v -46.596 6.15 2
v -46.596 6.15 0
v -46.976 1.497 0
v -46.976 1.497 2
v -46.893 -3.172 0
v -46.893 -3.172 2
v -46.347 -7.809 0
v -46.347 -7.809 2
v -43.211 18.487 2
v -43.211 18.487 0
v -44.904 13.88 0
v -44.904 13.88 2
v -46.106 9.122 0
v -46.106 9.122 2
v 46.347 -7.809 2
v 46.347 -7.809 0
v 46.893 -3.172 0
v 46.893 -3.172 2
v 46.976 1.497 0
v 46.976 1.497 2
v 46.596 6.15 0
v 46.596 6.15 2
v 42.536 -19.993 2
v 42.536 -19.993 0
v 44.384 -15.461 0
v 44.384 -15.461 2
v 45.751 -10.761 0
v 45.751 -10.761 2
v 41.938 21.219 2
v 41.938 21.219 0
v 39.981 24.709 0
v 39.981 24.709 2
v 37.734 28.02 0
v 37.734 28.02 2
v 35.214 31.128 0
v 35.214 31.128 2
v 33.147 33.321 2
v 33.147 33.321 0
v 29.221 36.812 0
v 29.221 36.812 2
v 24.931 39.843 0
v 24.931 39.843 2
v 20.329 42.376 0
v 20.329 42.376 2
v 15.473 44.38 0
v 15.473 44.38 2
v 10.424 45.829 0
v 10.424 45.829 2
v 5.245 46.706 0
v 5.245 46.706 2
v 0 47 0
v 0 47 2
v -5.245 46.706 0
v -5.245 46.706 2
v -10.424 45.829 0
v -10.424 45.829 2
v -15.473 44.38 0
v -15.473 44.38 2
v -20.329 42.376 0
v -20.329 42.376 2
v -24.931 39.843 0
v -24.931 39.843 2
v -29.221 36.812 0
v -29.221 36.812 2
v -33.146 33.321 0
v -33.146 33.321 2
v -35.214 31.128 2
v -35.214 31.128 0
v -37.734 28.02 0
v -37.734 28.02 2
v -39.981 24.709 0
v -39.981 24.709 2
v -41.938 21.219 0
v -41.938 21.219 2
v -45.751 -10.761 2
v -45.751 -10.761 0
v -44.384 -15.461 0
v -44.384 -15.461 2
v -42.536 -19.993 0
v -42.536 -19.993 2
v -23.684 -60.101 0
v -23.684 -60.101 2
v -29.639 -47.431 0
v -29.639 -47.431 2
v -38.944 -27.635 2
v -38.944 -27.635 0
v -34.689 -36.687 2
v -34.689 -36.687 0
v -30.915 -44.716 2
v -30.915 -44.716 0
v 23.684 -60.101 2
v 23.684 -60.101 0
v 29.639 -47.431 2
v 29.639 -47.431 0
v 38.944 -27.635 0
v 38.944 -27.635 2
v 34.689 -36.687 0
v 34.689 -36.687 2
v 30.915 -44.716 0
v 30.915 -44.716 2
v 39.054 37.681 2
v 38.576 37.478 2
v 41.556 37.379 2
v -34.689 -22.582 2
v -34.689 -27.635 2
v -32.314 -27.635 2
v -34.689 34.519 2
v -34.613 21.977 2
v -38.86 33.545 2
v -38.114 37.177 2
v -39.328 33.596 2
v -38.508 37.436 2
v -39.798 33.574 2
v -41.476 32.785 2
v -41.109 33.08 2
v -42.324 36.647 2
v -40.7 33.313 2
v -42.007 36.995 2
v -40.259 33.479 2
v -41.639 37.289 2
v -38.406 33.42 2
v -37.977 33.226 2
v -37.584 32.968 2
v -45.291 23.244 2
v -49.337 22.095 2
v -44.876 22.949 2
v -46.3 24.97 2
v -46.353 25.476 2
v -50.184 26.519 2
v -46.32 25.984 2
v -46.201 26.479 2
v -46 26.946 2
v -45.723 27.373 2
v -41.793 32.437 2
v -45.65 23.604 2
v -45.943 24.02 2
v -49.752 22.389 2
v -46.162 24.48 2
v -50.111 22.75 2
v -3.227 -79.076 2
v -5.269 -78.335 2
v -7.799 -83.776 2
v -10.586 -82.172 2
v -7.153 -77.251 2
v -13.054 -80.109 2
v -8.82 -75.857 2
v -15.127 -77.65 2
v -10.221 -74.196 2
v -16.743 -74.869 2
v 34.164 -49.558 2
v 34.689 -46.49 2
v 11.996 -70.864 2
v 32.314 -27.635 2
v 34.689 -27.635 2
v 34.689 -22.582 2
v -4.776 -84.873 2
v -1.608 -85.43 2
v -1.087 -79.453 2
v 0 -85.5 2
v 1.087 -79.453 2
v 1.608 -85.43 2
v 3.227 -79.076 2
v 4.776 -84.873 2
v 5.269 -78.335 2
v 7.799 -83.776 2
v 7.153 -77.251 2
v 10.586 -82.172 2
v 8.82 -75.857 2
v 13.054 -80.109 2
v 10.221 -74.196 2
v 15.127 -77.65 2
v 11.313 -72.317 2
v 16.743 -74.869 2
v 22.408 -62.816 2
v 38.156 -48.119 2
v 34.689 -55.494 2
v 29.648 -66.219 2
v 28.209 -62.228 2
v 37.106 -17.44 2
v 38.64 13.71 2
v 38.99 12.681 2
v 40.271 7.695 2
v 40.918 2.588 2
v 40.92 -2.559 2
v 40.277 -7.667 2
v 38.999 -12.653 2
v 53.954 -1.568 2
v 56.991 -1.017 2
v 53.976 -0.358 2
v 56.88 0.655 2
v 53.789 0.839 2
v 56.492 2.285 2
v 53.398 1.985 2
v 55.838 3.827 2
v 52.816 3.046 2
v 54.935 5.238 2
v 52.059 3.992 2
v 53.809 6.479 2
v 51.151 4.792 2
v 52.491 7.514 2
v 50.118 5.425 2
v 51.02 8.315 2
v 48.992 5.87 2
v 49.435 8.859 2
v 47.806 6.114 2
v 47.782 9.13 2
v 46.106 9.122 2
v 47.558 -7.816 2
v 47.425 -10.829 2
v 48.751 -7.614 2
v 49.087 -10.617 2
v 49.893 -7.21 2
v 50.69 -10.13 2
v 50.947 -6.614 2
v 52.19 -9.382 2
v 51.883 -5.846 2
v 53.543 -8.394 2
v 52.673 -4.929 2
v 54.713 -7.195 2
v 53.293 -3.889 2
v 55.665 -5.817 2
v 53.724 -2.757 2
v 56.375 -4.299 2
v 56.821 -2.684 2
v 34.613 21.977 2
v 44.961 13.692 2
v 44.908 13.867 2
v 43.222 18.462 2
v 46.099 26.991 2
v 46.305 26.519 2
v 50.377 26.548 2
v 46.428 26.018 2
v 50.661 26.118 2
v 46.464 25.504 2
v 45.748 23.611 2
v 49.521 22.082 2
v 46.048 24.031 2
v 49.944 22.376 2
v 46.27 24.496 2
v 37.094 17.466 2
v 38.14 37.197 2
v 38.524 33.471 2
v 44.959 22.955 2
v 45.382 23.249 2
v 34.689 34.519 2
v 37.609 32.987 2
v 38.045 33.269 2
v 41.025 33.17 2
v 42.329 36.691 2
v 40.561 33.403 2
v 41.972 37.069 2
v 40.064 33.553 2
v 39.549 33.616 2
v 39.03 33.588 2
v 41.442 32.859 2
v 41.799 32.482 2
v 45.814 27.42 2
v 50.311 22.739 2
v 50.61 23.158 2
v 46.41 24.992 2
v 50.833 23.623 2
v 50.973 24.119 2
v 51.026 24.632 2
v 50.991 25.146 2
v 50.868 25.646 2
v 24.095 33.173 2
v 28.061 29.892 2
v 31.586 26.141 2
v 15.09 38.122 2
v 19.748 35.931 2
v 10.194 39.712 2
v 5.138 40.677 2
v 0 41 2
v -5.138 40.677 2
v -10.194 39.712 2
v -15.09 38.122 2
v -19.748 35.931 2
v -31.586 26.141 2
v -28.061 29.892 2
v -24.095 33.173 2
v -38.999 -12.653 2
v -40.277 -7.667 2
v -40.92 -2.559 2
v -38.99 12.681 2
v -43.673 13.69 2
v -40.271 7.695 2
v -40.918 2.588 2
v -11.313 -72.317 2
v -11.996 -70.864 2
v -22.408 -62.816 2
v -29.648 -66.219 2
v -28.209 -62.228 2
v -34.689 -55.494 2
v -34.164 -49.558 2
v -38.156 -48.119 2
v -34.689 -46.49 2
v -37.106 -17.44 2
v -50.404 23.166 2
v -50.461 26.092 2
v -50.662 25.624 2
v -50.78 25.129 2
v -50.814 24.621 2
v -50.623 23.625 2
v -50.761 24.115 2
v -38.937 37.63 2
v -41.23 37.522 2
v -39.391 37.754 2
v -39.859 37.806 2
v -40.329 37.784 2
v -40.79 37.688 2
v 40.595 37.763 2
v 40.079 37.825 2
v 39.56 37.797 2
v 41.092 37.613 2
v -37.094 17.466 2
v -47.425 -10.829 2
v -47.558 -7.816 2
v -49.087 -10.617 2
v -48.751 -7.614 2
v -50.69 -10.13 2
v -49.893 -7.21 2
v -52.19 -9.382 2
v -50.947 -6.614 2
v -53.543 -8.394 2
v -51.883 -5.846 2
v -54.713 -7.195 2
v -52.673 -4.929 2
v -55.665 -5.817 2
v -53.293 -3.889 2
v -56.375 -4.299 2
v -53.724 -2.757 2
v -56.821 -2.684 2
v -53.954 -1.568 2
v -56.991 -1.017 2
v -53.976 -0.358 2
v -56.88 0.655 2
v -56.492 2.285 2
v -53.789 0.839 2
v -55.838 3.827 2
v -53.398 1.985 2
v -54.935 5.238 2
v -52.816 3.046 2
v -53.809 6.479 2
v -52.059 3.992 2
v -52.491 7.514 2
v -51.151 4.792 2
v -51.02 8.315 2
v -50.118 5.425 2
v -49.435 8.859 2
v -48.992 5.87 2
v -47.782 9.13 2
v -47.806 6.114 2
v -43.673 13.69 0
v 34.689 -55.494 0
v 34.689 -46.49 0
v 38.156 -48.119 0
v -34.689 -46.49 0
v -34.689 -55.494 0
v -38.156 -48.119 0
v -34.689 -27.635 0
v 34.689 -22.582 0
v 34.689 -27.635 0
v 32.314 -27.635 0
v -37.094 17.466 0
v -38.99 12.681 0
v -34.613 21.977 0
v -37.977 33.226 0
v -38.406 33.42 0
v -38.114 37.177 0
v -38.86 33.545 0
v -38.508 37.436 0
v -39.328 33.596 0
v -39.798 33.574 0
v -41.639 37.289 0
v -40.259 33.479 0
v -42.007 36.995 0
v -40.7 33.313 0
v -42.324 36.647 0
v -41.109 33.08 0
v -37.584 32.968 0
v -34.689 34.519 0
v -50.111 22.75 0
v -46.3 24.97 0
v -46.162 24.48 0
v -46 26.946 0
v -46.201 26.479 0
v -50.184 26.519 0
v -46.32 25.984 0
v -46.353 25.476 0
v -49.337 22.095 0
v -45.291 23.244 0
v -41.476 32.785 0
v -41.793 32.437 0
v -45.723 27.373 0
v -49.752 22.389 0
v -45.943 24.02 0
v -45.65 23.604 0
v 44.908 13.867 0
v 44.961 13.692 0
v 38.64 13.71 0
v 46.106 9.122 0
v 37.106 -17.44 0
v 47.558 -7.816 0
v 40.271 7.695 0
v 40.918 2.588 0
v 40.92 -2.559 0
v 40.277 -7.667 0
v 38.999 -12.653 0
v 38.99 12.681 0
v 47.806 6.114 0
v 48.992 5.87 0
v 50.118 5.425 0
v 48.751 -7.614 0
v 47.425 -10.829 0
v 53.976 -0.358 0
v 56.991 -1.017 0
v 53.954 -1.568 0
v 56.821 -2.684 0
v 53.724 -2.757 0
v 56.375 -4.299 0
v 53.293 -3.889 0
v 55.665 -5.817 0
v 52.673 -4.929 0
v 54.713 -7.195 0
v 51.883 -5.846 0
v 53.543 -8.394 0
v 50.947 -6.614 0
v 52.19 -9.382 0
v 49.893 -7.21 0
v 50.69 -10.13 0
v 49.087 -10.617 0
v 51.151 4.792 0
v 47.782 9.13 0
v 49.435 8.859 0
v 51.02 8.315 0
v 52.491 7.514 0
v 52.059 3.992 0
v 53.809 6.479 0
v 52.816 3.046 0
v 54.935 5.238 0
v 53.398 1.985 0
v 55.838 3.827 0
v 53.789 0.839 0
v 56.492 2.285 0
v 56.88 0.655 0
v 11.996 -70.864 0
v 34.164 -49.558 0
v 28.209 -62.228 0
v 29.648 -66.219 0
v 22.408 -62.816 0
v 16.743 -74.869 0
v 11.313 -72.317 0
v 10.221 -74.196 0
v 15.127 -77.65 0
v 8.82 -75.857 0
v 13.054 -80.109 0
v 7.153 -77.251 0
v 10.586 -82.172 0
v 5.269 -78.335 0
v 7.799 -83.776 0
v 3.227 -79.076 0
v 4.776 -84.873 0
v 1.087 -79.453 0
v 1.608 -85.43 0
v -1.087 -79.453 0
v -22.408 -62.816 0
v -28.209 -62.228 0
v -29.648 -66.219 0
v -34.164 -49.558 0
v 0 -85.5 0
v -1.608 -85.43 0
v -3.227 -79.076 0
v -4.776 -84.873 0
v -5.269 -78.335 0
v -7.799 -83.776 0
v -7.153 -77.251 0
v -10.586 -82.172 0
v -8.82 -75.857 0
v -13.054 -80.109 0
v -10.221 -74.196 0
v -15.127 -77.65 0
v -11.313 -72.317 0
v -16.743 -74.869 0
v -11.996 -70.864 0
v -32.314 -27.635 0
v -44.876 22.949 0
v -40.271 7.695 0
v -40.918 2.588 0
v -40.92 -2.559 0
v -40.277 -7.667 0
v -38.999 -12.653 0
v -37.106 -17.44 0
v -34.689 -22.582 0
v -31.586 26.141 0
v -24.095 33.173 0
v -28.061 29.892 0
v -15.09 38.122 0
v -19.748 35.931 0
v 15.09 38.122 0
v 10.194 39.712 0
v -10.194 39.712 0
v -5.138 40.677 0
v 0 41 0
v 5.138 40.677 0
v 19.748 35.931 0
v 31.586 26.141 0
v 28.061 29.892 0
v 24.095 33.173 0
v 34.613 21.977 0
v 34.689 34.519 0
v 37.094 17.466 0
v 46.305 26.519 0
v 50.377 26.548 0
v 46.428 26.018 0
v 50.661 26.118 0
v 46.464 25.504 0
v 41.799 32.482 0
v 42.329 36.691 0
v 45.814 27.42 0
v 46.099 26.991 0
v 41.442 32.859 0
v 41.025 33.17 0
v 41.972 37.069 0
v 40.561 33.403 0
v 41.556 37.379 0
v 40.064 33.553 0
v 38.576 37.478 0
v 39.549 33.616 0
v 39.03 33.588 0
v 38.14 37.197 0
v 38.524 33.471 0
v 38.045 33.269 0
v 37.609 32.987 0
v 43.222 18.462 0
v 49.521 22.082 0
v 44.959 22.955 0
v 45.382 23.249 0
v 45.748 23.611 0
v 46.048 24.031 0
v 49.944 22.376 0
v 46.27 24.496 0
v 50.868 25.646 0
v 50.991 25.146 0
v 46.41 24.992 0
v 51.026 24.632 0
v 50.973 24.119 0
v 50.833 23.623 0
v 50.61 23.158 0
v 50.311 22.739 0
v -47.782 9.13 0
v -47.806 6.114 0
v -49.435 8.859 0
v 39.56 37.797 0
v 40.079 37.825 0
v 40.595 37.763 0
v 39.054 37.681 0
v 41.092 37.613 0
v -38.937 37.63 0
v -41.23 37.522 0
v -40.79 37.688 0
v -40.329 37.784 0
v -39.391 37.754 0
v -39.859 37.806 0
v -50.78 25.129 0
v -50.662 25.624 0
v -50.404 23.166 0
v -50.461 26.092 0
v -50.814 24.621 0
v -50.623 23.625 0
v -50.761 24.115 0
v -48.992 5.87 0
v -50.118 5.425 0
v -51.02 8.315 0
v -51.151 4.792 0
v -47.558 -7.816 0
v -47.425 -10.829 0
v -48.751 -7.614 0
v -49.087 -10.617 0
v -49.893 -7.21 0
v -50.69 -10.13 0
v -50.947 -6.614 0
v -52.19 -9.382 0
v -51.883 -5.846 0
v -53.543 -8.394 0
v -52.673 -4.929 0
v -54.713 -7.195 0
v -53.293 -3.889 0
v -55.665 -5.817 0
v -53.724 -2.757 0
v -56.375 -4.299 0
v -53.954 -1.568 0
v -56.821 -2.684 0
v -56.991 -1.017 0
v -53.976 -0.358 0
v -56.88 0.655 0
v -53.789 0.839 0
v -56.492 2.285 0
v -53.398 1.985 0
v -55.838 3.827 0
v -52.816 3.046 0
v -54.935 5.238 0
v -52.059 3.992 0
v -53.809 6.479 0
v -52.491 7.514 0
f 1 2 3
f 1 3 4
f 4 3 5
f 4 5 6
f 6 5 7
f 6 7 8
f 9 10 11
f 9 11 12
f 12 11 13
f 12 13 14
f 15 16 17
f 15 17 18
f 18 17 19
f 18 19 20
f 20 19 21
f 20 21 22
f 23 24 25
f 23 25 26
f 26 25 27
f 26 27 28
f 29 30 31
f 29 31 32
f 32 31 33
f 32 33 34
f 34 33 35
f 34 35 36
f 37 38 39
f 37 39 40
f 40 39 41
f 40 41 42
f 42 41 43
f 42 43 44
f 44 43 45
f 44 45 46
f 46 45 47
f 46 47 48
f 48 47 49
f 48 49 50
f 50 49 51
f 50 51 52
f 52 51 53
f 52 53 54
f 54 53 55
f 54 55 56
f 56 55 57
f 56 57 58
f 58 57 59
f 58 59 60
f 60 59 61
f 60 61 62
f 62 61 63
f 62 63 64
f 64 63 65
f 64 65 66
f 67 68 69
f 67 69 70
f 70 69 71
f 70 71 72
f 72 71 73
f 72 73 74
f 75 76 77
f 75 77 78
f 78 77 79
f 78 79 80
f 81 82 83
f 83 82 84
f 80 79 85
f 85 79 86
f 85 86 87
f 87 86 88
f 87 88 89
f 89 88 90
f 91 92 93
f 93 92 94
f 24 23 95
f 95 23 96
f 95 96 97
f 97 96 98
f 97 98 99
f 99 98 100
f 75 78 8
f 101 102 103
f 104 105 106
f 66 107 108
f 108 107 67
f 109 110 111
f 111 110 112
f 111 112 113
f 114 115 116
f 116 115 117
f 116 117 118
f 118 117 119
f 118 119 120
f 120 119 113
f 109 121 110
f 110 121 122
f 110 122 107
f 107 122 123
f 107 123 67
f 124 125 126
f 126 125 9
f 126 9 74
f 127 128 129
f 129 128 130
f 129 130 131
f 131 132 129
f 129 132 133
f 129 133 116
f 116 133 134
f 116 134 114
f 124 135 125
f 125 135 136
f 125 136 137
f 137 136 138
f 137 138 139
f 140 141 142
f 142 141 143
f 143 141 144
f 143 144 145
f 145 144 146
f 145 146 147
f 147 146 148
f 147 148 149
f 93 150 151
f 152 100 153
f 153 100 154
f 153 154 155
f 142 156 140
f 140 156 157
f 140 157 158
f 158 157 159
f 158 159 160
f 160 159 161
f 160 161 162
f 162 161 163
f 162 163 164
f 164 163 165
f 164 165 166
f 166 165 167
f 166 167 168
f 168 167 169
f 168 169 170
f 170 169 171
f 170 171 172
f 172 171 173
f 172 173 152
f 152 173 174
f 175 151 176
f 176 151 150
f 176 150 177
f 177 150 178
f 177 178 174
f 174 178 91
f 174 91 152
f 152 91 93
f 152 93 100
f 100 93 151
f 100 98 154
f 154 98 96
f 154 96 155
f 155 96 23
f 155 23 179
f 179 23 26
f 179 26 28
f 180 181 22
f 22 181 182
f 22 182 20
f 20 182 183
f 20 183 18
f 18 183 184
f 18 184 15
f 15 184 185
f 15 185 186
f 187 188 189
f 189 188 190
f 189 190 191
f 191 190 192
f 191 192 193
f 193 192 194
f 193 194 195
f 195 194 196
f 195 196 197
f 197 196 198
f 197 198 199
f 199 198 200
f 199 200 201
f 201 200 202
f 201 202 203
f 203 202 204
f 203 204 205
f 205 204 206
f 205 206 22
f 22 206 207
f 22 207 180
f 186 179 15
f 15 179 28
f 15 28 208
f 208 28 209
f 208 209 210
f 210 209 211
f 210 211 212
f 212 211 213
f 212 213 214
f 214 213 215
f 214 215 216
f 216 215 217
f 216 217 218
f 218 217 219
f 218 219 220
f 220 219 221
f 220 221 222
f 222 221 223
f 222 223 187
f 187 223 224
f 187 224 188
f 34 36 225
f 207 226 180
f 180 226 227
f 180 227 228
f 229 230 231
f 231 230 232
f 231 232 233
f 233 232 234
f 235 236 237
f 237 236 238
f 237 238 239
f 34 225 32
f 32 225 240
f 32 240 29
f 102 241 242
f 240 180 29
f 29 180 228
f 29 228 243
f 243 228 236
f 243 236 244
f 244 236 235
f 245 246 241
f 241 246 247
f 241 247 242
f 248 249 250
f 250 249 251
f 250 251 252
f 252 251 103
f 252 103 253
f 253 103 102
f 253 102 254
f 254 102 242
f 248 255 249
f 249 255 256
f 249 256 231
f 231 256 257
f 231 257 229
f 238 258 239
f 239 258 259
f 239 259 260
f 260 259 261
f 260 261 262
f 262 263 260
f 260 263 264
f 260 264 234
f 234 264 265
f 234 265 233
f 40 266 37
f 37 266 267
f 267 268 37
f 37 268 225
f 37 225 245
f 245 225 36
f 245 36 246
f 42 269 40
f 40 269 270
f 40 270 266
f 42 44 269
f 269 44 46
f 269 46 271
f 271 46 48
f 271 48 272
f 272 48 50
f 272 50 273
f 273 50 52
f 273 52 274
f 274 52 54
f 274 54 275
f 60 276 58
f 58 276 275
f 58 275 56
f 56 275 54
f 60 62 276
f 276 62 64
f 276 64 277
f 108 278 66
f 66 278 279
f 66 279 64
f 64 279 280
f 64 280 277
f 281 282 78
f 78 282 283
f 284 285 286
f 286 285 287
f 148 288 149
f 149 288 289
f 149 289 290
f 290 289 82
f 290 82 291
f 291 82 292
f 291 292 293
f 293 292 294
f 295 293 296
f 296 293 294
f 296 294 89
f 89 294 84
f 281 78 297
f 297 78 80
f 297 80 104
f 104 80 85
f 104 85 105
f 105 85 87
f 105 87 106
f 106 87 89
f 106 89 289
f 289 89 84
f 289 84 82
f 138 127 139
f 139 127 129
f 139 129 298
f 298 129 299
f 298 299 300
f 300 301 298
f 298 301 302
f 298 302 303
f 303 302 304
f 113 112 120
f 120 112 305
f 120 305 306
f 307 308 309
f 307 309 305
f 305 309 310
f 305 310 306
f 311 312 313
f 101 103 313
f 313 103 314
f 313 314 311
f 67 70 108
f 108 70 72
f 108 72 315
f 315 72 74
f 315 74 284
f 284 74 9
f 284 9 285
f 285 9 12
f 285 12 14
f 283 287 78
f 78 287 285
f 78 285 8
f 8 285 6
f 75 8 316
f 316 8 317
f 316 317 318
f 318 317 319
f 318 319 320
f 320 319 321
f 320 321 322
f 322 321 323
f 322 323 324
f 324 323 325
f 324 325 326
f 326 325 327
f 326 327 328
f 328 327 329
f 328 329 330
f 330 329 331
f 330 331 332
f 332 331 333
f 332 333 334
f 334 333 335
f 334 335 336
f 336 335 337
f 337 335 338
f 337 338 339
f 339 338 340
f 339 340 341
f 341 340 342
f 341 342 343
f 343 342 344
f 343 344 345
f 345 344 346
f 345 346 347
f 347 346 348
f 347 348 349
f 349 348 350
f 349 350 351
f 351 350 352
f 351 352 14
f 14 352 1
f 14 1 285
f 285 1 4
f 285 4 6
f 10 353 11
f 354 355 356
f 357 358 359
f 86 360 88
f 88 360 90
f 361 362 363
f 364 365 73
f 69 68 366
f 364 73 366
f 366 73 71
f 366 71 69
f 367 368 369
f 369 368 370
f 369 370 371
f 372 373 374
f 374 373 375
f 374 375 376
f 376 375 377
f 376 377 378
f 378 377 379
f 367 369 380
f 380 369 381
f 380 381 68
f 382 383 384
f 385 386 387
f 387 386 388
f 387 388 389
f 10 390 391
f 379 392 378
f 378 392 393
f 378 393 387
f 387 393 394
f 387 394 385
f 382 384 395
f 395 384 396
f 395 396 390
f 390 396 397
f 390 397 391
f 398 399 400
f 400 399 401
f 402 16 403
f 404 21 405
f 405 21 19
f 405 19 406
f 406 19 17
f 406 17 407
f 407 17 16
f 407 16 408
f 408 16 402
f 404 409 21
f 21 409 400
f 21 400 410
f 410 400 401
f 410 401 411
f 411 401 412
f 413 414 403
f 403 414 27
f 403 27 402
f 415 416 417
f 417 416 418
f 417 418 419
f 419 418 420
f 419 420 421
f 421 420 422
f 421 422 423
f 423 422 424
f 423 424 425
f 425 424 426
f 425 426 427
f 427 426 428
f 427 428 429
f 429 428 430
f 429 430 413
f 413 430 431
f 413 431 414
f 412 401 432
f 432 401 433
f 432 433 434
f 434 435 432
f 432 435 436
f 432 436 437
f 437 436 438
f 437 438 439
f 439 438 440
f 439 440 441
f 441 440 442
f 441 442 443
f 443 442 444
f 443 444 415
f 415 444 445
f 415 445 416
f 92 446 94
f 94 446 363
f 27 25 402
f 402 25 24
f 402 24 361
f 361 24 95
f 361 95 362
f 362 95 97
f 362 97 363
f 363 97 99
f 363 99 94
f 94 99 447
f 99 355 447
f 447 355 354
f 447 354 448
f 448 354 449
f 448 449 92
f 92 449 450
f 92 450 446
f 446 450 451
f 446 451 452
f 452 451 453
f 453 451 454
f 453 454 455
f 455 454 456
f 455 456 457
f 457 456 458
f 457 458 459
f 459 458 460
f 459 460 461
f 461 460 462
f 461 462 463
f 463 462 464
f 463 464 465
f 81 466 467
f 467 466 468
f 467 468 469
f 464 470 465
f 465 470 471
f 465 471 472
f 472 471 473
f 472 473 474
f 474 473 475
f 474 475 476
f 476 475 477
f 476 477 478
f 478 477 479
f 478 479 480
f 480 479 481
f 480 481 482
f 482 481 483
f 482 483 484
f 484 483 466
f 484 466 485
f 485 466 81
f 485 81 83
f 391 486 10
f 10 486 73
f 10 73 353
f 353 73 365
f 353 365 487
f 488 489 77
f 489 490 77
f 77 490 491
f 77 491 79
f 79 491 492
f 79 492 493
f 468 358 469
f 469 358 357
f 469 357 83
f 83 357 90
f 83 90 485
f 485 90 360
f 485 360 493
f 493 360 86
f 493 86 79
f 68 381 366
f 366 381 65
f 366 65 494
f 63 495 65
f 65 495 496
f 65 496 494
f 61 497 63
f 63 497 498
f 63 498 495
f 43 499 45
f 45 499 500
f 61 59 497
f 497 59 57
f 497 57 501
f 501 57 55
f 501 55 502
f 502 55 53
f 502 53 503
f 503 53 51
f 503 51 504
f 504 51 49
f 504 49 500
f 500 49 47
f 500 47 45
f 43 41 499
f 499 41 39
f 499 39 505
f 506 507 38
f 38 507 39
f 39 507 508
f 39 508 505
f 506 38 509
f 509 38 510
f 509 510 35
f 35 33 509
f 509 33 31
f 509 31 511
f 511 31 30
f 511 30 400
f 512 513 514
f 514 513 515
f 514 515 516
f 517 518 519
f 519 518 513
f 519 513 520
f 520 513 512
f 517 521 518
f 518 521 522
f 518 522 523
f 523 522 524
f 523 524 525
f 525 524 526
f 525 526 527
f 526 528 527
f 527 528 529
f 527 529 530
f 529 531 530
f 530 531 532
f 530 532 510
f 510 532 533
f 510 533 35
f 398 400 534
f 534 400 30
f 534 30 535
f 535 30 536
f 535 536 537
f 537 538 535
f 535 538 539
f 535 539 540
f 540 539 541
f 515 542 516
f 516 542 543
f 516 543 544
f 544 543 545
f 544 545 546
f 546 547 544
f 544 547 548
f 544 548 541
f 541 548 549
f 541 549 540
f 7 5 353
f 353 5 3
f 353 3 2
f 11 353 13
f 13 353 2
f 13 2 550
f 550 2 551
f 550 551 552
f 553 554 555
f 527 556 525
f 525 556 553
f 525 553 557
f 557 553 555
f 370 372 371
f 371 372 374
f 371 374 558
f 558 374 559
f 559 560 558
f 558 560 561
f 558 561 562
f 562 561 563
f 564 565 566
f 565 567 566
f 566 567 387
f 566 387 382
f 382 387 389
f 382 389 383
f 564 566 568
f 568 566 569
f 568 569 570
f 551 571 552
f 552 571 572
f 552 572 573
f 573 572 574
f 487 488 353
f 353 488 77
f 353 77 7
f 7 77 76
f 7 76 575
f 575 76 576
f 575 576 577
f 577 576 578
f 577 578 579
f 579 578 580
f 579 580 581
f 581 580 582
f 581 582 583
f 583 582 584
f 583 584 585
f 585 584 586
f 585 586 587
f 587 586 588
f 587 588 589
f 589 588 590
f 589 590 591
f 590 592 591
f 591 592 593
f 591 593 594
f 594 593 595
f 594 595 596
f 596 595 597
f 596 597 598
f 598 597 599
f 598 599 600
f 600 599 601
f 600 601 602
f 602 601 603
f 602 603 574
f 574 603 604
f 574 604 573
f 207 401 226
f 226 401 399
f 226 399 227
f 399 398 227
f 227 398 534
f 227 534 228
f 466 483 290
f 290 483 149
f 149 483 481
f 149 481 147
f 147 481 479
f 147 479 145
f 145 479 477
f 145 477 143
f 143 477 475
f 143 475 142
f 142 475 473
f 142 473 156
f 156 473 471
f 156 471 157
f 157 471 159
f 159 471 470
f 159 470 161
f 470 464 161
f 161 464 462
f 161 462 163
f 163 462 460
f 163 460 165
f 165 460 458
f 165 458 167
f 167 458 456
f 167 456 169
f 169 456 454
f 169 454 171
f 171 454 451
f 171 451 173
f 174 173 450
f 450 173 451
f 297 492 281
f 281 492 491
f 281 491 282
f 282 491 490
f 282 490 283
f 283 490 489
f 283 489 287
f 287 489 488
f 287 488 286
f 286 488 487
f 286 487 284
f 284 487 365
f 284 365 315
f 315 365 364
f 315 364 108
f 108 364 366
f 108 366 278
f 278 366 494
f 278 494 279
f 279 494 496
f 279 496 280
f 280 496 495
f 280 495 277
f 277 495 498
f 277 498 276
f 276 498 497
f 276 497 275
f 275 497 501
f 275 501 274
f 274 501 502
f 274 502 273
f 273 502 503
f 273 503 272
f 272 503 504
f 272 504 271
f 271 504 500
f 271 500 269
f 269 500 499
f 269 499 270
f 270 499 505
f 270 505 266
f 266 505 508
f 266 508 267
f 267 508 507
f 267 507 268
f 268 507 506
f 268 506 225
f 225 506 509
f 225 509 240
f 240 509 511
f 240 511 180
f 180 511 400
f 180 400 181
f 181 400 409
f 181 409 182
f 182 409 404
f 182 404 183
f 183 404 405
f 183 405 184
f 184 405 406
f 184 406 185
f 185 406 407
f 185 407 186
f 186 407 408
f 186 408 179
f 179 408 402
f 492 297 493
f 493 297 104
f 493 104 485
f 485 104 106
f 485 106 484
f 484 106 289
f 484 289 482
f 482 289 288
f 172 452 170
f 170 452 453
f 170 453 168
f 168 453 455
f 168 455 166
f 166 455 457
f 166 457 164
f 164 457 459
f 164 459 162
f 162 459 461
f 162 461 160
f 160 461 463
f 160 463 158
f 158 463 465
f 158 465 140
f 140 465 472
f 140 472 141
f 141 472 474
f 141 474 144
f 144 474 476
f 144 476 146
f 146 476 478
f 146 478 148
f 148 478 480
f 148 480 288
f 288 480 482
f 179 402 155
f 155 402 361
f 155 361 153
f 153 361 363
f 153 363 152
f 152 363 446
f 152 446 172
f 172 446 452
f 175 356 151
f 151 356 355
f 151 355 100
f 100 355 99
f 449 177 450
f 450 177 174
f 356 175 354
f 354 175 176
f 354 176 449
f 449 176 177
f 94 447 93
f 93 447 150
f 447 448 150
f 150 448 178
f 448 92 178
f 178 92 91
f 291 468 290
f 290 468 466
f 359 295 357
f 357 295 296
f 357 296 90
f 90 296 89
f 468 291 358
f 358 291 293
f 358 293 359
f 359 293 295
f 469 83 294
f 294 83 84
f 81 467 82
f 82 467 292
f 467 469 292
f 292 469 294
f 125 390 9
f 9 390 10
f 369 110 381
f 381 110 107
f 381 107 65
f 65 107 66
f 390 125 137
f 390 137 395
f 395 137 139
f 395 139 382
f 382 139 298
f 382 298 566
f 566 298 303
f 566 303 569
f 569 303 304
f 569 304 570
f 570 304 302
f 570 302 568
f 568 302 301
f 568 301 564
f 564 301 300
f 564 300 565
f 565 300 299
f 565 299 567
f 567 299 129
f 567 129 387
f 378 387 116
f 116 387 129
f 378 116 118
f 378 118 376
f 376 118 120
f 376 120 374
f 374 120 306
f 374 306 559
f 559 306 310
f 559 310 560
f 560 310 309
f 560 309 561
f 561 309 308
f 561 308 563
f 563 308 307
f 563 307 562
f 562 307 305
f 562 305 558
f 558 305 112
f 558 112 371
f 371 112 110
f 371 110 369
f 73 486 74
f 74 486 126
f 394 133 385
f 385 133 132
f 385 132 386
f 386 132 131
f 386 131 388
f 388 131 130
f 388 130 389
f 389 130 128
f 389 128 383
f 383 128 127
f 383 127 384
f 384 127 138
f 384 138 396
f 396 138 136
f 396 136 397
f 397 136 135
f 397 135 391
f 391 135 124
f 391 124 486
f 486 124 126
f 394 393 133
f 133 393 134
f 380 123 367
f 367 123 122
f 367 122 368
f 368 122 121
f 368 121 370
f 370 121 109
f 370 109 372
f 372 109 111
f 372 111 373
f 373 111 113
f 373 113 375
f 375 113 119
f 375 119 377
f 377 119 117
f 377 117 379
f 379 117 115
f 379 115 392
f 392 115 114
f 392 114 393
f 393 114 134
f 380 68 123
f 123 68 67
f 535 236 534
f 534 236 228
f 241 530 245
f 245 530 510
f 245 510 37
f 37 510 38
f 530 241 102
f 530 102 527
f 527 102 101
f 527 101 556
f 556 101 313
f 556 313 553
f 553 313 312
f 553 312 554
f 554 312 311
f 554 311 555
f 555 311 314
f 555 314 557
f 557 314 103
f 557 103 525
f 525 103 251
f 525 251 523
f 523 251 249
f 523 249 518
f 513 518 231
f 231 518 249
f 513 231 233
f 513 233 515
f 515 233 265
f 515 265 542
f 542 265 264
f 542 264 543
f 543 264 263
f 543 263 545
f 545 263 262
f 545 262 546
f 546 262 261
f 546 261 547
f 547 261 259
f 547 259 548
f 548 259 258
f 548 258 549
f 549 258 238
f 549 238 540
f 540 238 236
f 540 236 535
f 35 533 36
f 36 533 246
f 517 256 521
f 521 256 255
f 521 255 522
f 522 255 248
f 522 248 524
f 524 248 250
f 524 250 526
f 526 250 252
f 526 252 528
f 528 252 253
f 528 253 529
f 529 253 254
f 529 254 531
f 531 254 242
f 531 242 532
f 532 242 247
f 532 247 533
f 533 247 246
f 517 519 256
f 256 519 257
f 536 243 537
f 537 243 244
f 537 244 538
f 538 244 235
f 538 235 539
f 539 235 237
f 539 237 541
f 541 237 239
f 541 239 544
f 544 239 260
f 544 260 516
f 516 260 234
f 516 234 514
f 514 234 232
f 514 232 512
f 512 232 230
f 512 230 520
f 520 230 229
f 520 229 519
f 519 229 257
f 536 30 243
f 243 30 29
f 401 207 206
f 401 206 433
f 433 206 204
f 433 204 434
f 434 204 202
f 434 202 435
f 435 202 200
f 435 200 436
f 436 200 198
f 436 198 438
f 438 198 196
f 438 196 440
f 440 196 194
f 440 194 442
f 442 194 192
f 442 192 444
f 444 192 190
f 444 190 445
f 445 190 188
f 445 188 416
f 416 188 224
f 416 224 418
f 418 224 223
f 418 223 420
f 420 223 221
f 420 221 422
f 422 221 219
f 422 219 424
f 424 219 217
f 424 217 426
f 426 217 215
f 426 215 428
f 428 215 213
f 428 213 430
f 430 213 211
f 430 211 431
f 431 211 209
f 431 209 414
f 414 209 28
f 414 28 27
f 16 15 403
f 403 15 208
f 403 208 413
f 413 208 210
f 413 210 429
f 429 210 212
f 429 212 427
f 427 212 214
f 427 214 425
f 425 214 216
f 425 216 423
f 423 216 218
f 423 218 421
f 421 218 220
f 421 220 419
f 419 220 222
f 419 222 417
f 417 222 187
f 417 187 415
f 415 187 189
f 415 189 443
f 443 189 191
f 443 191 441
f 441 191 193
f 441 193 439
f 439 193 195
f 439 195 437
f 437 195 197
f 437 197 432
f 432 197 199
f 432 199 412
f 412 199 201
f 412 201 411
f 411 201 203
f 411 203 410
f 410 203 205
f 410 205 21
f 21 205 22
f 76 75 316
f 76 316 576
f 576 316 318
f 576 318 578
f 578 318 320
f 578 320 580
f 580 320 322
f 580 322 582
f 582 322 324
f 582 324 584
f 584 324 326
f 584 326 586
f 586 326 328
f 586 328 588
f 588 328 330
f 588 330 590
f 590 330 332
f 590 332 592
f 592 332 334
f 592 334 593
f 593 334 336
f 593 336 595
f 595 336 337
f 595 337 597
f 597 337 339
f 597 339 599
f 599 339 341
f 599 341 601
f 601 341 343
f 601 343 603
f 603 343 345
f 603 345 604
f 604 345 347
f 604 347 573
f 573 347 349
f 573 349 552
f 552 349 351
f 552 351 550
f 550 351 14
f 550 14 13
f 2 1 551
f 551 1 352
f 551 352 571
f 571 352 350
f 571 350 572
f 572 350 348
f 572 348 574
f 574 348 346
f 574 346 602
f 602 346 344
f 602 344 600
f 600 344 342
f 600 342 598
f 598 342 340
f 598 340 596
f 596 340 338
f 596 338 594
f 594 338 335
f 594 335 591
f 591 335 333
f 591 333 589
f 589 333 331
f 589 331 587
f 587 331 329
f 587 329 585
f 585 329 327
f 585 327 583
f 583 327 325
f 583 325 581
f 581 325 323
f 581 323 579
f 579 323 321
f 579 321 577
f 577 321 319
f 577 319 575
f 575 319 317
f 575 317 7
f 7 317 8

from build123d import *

# Parameters (mm, degrees)
BOSS_EXTRUDE1_DEPTH = 2
BOSS_EXTRUDE2_DEPTH = 2
BOSS_EXTRUDE3_DEPTH = 2
BOSS_EXTRUDE4_DEPTH = 2


with BuildPart() as part:
    # Sketch1 → Boss-Extrude1 (new body)
    with BuildSketch(Plane.XY):
        with BuildLine():
            Line((-42.535849019, -19.992537313), (-16.742834188, -74.869402985))
            ThreePointArc((-16.742834188, -74.869402985), (0, -85.5), (16.742834188, -74.869402985))
            Line((16.742834188, -74.869402985), (42.535849019, -19.992537313))
            ThreePointArc((42.535849019, -19.992537313), (0, 47), (-42.535849019, -19.992537313))
        make_face()
        with BuildLine():
            Line((37.105740634, -17.440298507), (11.312725803, -72.317164179))
            ThreePointArc((11.312725803, -72.317164179), (0, -79.5), (-11.312725803, -72.317164179))
            Line((-11.312725803, -72.317164179), (-37.105740634, -17.440298507))
            ThreePointArc((-37.105740634, -17.440298507), (0, 41), (37.105740634, -17.440298507))
        make_face(mode=Mode.SUBTRACT)
    extrude(amount=BOSS_EXTRUDE1_DEPTH)

    # Sketch2 → Boss-Extrude2 (add)
    # profile 1 of 2: a face of its own
    with BuildSketch(Plane.XY.offset(2)):
        Polygon((38.155605521, -48.118901031), (29.648142834, -66.219262316), (19.692944127, -61.540157838), (28.200406814, -43.439796554), align=None)
        Polygon((29.639341604, -47.430970149), (34.164431925, -49.557835821), (28.209208044, -62.22808872), (23.684117723, -60.101223049), align=None, mode=Mode.SUBTRACT)
    # profile 2 of 2: a face of its own
    with BuildSketch(Plane.XY.offset(2)):
        Polygon((-28.200406814, -43.439796554), (-38.155605521, -48.118901031), (-29.648142834, -66.219262316), (-19.692944127, -61.540157838), align=None)
        Polygon((-29.639341604, -47.430970149), (-23.684117723, -60.101223049), (-28.209208044, -62.22808872), (-34.164431925, -49.557835821), align=None, mode=Mode.SUBTRACT)
    extrude(amount=-BOSS_EXTRUDE2_DEPTH)

    # Sketch3 → Boss-Extrude3 (add)
    # profile 1 of 2: a face of its own
    with BuildSketch(Plane.XY.offset(2)):
        with BuildLine():
            Line((-31.151373165, 31.772817784), (-38.114457897, 37.177116489))
            ThreePointArc((-38.114457897, 37.177116489), (-40.329006137, 37.783626199), (-42.323795344, 36.64657125))
            Line((-42.323795344, 36.64657125), (-50.184128352, 26.519047267))
            ThreePointArc((-50.184128352, 26.519047267), (-50.760622602, 24.115277799), (-49.336666072, 22.094683561))
            Line((-49.336666072, 22.094683561), (-41.03528616, 17.205385487))
            Line((-41.03528616, 17.205385487), (-31.151373165, 31.772817784))
        make_face()
        with BuildLine():
            Line((-35.213971315, 31.128382936), (-37.583912658, 32.967779041))
            ThreePointArc((-37.583912658, 32.967779041), (-39.798460899, 33.574288752), (-41.793250106, 32.437233803))
            Line((-41.793250106, 32.437233803), (-45.72341661, 27.373471811))
            ThreePointArc((-45.72341661, 27.373471811), (-46.29991086, 24.969702343), (-44.87595433, 22.949108105))
            Line((-44.87595433, 22.949108105), (-41.937721652, 21.218565047))
            Line((-41.937721652, 21.218565047), (-35.213971315, 31.128382936))
        make_face(mode=Mode.SUBTRACT)
    # profile 2 of 2: a face of its own
    with BuildSketch(Plane.XY.offset(2)):
        with BuildLine():
            Line((31.151373165, 31.772817784), (41.03528616, 17.205385487))
            Line((41.03528616, 17.205385487), (49.521231884, 22.082259987))
            ThreePointArc((49.521231884, 22.082259987), (50.972840228, 24.118942465), (50.376596508, 26.547879626))
            Line((50.376596508, 26.547879626), (42.329184832, 36.691250185))
            ThreePointArc((42.329184832, 36.691250185), (40.338269585, 37.80509541), (38.139596853, 37.19662773))
            Line((38.139596853, 37.19662773), (31.151373165, 31.772817784))
        make_face()
        with BuildLine():
            Line((35.213971315, 31.128382936), (41.937721652, 21.218565047))
            Line((41.937721652, 21.218565047), (44.9588763, 22.954823155))
            ThreePointArc((44.9588763, 22.954823155), (46.410484644, 24.991505634), (45.814240924, 27.420442794))
            Line((45.814240924, 27.420442794), (41.798639593, 32.481912737))
            ThreePointArc((41.798639593, 32.481912737), (39.807724347, 33.595757962), (37.609051614, 32.987290283))
            Line((37.609051614, 32.987290283), (35.213971315, 31.128382936))
        make_face(mode=Mode.SUBTRACT)
    extrude(amount=-BOSS_EXTRUDE3_DEPTH)

    # Sketch4 → Boss-Extrude4 (add)
    # profile 1 of 2: a face of its own
    with BuildSketch(Plane.XY.offset(2)):
        with BuildLine():
            Line((42.848392472, 8.262286082), (42.848392472, -9.939496711))
            ThreePointArc((42.848392472, -9.939496711), (56.992517927, -0.838605315), (42.848392472, 8.262286082))
        make_face()
        with BuildLine():
            Line((45.848392472, 6.067260087), (45.848392472, -7.744470716))
            ThreePointArc((45.848392472, -7.744470716), (53.992517927, -0.838605315), (45.848392472, 6.067260087))
        make_face(mode=Mode.SUBTRACT)
    # profile 2 of 2: a face of its own
    with BuildSketch(Plane.XY.offset(2)):
        with BuildLine():
            Line((-42.848392472, 8.262286082), (-42.848392472, -9.939496711))
            ThreePointArc((-42.848392472, -9.939496711), (-56.992517927, -0.838605315), (-42.848392472, 8.262286082))
        make_face()
        with BuildLine():
            Line((-45.848392472, 6.067260087), (-45.848392472, -7.744470716))
            ThreePointArc((-45.848392472, -7.744470716), (-53.992517927, -0.838605315), (-45.848392472, 6.067260087))
        make_face(mode=Mode.SUBTRACT)
    extrude(amount=-BOSS_EXTRUDE4_DEPTH)


solid = part.part
